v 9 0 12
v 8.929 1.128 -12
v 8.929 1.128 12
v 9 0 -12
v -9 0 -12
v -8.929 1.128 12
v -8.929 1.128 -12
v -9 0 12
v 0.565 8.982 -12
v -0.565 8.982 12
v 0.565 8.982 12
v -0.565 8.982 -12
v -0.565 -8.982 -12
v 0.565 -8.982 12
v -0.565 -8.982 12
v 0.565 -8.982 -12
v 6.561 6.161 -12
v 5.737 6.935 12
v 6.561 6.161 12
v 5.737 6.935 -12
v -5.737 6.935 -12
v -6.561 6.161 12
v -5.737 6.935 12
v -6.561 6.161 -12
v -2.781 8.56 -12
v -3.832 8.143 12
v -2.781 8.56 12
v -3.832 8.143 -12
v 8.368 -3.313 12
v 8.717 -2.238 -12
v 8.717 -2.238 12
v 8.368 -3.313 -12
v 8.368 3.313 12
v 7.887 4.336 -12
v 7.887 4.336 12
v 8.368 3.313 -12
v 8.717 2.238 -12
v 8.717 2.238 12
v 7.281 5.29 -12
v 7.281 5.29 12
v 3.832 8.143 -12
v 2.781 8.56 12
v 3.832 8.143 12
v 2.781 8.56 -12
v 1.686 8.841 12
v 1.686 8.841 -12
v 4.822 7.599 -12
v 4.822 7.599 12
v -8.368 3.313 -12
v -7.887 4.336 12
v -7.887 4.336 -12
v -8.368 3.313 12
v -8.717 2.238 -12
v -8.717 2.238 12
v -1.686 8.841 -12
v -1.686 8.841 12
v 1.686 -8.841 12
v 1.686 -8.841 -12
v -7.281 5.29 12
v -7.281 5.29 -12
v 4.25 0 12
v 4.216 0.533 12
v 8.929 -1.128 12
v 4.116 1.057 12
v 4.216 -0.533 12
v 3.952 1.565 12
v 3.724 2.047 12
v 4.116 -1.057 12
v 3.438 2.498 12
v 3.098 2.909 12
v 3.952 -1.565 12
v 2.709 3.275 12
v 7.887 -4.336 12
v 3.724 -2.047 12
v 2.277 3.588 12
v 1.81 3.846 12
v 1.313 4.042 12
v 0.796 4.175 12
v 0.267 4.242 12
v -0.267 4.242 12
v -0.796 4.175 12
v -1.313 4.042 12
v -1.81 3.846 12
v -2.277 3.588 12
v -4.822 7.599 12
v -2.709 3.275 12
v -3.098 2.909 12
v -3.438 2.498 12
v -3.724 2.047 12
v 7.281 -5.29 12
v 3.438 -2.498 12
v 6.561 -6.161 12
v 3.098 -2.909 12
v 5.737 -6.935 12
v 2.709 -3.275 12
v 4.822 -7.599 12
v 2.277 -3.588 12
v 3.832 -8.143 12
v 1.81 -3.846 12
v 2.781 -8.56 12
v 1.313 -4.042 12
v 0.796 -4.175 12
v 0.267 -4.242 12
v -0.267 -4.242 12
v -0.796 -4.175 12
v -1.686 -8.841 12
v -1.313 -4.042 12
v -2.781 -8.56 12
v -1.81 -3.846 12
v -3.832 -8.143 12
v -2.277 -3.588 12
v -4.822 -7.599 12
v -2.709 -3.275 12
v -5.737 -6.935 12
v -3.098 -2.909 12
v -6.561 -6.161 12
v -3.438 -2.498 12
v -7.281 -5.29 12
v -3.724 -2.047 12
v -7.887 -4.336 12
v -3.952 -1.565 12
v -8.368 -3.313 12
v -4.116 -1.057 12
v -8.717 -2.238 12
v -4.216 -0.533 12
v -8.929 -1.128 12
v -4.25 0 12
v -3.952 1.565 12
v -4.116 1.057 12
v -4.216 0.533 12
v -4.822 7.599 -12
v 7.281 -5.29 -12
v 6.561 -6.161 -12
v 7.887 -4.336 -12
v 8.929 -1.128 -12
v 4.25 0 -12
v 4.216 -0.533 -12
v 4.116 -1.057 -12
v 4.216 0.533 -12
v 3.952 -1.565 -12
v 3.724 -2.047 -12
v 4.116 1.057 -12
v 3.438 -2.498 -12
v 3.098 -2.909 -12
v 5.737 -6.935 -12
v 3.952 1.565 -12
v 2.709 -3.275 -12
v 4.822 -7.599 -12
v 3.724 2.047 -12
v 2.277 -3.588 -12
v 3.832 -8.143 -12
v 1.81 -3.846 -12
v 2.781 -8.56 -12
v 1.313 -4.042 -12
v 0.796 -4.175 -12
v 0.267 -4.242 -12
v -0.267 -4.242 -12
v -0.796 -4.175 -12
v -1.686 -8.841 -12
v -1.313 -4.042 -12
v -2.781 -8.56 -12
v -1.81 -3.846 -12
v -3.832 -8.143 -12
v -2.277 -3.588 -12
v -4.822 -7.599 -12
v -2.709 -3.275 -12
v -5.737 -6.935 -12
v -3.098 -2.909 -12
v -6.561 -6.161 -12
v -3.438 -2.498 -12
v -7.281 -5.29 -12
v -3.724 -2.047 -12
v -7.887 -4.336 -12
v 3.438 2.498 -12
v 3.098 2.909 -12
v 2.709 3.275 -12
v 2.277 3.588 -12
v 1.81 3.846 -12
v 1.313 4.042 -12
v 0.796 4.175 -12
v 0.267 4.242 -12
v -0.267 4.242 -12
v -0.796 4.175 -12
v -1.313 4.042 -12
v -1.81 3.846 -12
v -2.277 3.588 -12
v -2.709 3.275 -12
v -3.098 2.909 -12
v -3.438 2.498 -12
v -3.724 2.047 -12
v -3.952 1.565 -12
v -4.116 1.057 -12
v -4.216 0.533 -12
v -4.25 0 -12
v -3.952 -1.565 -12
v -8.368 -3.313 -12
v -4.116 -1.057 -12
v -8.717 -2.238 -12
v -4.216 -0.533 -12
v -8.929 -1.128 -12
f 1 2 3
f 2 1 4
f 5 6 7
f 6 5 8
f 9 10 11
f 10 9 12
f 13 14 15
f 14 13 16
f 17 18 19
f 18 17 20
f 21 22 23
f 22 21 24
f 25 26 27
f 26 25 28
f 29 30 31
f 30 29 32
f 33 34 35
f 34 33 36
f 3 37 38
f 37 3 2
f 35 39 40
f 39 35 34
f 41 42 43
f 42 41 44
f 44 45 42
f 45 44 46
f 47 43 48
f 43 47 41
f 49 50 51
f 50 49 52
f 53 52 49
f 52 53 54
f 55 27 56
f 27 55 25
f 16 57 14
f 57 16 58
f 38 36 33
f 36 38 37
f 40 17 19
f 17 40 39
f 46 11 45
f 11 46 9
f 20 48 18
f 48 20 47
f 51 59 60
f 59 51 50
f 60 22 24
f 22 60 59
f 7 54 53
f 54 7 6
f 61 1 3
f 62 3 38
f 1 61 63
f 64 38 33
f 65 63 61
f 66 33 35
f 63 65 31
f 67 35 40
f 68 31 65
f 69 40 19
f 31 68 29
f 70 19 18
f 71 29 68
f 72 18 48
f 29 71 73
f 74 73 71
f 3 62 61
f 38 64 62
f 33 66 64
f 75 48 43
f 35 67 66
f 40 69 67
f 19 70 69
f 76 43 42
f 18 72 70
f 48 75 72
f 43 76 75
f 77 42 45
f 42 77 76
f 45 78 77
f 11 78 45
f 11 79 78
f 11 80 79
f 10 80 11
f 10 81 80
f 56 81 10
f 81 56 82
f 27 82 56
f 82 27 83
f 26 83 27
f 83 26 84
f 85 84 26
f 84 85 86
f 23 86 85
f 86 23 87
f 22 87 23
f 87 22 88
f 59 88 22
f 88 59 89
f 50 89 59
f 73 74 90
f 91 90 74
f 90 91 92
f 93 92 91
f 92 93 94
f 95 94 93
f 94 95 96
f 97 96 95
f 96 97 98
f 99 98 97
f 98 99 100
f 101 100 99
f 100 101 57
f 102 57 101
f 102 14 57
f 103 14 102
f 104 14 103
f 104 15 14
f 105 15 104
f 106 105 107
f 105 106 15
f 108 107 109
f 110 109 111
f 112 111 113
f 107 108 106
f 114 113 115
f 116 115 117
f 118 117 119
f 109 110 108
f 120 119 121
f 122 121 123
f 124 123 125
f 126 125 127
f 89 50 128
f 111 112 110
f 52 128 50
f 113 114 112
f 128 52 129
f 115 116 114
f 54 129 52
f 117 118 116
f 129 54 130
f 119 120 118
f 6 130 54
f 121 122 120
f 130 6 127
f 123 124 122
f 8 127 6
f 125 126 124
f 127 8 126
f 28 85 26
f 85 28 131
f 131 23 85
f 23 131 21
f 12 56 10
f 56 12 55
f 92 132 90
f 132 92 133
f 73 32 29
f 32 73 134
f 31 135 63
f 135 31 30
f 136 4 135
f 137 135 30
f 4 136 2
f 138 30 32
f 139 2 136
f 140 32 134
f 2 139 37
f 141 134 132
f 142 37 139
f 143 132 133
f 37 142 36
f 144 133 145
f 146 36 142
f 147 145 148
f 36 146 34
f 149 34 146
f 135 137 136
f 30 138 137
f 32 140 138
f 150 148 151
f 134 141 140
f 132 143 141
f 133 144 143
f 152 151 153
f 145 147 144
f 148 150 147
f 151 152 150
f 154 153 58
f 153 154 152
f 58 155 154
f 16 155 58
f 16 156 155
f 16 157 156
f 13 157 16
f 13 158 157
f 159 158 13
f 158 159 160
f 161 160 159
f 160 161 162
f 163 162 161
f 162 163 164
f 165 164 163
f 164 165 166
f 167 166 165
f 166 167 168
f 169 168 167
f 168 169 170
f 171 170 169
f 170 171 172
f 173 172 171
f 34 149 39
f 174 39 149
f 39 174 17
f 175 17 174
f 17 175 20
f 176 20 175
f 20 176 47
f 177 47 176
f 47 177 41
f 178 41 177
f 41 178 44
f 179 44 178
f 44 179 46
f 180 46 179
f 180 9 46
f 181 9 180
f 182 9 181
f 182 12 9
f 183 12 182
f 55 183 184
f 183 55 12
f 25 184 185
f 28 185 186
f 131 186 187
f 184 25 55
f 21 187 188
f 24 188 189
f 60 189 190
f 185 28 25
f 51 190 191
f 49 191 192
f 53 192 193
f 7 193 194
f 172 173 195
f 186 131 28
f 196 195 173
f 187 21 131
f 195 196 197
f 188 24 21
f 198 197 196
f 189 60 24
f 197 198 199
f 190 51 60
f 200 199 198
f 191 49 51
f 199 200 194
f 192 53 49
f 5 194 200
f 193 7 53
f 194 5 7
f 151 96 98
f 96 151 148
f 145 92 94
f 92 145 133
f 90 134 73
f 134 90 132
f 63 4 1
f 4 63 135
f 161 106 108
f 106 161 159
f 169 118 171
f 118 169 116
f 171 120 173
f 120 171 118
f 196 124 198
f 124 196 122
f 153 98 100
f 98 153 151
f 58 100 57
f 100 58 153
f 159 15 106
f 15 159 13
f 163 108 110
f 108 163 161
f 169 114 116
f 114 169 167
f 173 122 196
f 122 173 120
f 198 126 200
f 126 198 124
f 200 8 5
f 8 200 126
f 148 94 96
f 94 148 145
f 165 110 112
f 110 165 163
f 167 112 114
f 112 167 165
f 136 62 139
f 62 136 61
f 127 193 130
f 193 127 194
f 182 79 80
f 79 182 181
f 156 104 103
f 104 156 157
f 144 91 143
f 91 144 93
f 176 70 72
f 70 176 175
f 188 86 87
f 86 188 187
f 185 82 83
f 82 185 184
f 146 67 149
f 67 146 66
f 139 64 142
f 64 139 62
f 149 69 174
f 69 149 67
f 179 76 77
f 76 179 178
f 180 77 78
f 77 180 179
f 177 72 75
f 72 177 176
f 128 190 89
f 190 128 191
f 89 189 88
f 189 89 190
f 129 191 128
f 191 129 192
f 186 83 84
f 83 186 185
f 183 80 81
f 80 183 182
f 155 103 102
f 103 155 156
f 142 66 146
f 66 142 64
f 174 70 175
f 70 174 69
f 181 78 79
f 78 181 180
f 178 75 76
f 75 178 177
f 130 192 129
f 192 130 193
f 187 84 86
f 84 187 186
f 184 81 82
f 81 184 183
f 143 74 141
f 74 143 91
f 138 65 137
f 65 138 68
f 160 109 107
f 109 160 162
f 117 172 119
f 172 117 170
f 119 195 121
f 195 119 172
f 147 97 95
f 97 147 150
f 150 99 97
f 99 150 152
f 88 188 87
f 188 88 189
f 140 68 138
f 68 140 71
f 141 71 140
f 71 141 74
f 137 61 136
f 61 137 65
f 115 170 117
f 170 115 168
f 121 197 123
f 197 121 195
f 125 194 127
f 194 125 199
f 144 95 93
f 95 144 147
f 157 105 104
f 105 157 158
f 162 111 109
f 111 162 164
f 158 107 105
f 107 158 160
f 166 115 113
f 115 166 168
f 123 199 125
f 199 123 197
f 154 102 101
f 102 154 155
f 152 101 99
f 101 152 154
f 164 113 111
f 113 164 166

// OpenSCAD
$fn = 50;


difference() {
	union() {
		translate(v = [0, 0, -12.0000000000]) {
			cylinder(h = 24, r = 9.0000000000);
		}
	}
	union() {
		translate(v = [0, 0, -100.0000000000]) {
			cylinder(h = 200, r = 4.2500000000);
		}
	}
}
